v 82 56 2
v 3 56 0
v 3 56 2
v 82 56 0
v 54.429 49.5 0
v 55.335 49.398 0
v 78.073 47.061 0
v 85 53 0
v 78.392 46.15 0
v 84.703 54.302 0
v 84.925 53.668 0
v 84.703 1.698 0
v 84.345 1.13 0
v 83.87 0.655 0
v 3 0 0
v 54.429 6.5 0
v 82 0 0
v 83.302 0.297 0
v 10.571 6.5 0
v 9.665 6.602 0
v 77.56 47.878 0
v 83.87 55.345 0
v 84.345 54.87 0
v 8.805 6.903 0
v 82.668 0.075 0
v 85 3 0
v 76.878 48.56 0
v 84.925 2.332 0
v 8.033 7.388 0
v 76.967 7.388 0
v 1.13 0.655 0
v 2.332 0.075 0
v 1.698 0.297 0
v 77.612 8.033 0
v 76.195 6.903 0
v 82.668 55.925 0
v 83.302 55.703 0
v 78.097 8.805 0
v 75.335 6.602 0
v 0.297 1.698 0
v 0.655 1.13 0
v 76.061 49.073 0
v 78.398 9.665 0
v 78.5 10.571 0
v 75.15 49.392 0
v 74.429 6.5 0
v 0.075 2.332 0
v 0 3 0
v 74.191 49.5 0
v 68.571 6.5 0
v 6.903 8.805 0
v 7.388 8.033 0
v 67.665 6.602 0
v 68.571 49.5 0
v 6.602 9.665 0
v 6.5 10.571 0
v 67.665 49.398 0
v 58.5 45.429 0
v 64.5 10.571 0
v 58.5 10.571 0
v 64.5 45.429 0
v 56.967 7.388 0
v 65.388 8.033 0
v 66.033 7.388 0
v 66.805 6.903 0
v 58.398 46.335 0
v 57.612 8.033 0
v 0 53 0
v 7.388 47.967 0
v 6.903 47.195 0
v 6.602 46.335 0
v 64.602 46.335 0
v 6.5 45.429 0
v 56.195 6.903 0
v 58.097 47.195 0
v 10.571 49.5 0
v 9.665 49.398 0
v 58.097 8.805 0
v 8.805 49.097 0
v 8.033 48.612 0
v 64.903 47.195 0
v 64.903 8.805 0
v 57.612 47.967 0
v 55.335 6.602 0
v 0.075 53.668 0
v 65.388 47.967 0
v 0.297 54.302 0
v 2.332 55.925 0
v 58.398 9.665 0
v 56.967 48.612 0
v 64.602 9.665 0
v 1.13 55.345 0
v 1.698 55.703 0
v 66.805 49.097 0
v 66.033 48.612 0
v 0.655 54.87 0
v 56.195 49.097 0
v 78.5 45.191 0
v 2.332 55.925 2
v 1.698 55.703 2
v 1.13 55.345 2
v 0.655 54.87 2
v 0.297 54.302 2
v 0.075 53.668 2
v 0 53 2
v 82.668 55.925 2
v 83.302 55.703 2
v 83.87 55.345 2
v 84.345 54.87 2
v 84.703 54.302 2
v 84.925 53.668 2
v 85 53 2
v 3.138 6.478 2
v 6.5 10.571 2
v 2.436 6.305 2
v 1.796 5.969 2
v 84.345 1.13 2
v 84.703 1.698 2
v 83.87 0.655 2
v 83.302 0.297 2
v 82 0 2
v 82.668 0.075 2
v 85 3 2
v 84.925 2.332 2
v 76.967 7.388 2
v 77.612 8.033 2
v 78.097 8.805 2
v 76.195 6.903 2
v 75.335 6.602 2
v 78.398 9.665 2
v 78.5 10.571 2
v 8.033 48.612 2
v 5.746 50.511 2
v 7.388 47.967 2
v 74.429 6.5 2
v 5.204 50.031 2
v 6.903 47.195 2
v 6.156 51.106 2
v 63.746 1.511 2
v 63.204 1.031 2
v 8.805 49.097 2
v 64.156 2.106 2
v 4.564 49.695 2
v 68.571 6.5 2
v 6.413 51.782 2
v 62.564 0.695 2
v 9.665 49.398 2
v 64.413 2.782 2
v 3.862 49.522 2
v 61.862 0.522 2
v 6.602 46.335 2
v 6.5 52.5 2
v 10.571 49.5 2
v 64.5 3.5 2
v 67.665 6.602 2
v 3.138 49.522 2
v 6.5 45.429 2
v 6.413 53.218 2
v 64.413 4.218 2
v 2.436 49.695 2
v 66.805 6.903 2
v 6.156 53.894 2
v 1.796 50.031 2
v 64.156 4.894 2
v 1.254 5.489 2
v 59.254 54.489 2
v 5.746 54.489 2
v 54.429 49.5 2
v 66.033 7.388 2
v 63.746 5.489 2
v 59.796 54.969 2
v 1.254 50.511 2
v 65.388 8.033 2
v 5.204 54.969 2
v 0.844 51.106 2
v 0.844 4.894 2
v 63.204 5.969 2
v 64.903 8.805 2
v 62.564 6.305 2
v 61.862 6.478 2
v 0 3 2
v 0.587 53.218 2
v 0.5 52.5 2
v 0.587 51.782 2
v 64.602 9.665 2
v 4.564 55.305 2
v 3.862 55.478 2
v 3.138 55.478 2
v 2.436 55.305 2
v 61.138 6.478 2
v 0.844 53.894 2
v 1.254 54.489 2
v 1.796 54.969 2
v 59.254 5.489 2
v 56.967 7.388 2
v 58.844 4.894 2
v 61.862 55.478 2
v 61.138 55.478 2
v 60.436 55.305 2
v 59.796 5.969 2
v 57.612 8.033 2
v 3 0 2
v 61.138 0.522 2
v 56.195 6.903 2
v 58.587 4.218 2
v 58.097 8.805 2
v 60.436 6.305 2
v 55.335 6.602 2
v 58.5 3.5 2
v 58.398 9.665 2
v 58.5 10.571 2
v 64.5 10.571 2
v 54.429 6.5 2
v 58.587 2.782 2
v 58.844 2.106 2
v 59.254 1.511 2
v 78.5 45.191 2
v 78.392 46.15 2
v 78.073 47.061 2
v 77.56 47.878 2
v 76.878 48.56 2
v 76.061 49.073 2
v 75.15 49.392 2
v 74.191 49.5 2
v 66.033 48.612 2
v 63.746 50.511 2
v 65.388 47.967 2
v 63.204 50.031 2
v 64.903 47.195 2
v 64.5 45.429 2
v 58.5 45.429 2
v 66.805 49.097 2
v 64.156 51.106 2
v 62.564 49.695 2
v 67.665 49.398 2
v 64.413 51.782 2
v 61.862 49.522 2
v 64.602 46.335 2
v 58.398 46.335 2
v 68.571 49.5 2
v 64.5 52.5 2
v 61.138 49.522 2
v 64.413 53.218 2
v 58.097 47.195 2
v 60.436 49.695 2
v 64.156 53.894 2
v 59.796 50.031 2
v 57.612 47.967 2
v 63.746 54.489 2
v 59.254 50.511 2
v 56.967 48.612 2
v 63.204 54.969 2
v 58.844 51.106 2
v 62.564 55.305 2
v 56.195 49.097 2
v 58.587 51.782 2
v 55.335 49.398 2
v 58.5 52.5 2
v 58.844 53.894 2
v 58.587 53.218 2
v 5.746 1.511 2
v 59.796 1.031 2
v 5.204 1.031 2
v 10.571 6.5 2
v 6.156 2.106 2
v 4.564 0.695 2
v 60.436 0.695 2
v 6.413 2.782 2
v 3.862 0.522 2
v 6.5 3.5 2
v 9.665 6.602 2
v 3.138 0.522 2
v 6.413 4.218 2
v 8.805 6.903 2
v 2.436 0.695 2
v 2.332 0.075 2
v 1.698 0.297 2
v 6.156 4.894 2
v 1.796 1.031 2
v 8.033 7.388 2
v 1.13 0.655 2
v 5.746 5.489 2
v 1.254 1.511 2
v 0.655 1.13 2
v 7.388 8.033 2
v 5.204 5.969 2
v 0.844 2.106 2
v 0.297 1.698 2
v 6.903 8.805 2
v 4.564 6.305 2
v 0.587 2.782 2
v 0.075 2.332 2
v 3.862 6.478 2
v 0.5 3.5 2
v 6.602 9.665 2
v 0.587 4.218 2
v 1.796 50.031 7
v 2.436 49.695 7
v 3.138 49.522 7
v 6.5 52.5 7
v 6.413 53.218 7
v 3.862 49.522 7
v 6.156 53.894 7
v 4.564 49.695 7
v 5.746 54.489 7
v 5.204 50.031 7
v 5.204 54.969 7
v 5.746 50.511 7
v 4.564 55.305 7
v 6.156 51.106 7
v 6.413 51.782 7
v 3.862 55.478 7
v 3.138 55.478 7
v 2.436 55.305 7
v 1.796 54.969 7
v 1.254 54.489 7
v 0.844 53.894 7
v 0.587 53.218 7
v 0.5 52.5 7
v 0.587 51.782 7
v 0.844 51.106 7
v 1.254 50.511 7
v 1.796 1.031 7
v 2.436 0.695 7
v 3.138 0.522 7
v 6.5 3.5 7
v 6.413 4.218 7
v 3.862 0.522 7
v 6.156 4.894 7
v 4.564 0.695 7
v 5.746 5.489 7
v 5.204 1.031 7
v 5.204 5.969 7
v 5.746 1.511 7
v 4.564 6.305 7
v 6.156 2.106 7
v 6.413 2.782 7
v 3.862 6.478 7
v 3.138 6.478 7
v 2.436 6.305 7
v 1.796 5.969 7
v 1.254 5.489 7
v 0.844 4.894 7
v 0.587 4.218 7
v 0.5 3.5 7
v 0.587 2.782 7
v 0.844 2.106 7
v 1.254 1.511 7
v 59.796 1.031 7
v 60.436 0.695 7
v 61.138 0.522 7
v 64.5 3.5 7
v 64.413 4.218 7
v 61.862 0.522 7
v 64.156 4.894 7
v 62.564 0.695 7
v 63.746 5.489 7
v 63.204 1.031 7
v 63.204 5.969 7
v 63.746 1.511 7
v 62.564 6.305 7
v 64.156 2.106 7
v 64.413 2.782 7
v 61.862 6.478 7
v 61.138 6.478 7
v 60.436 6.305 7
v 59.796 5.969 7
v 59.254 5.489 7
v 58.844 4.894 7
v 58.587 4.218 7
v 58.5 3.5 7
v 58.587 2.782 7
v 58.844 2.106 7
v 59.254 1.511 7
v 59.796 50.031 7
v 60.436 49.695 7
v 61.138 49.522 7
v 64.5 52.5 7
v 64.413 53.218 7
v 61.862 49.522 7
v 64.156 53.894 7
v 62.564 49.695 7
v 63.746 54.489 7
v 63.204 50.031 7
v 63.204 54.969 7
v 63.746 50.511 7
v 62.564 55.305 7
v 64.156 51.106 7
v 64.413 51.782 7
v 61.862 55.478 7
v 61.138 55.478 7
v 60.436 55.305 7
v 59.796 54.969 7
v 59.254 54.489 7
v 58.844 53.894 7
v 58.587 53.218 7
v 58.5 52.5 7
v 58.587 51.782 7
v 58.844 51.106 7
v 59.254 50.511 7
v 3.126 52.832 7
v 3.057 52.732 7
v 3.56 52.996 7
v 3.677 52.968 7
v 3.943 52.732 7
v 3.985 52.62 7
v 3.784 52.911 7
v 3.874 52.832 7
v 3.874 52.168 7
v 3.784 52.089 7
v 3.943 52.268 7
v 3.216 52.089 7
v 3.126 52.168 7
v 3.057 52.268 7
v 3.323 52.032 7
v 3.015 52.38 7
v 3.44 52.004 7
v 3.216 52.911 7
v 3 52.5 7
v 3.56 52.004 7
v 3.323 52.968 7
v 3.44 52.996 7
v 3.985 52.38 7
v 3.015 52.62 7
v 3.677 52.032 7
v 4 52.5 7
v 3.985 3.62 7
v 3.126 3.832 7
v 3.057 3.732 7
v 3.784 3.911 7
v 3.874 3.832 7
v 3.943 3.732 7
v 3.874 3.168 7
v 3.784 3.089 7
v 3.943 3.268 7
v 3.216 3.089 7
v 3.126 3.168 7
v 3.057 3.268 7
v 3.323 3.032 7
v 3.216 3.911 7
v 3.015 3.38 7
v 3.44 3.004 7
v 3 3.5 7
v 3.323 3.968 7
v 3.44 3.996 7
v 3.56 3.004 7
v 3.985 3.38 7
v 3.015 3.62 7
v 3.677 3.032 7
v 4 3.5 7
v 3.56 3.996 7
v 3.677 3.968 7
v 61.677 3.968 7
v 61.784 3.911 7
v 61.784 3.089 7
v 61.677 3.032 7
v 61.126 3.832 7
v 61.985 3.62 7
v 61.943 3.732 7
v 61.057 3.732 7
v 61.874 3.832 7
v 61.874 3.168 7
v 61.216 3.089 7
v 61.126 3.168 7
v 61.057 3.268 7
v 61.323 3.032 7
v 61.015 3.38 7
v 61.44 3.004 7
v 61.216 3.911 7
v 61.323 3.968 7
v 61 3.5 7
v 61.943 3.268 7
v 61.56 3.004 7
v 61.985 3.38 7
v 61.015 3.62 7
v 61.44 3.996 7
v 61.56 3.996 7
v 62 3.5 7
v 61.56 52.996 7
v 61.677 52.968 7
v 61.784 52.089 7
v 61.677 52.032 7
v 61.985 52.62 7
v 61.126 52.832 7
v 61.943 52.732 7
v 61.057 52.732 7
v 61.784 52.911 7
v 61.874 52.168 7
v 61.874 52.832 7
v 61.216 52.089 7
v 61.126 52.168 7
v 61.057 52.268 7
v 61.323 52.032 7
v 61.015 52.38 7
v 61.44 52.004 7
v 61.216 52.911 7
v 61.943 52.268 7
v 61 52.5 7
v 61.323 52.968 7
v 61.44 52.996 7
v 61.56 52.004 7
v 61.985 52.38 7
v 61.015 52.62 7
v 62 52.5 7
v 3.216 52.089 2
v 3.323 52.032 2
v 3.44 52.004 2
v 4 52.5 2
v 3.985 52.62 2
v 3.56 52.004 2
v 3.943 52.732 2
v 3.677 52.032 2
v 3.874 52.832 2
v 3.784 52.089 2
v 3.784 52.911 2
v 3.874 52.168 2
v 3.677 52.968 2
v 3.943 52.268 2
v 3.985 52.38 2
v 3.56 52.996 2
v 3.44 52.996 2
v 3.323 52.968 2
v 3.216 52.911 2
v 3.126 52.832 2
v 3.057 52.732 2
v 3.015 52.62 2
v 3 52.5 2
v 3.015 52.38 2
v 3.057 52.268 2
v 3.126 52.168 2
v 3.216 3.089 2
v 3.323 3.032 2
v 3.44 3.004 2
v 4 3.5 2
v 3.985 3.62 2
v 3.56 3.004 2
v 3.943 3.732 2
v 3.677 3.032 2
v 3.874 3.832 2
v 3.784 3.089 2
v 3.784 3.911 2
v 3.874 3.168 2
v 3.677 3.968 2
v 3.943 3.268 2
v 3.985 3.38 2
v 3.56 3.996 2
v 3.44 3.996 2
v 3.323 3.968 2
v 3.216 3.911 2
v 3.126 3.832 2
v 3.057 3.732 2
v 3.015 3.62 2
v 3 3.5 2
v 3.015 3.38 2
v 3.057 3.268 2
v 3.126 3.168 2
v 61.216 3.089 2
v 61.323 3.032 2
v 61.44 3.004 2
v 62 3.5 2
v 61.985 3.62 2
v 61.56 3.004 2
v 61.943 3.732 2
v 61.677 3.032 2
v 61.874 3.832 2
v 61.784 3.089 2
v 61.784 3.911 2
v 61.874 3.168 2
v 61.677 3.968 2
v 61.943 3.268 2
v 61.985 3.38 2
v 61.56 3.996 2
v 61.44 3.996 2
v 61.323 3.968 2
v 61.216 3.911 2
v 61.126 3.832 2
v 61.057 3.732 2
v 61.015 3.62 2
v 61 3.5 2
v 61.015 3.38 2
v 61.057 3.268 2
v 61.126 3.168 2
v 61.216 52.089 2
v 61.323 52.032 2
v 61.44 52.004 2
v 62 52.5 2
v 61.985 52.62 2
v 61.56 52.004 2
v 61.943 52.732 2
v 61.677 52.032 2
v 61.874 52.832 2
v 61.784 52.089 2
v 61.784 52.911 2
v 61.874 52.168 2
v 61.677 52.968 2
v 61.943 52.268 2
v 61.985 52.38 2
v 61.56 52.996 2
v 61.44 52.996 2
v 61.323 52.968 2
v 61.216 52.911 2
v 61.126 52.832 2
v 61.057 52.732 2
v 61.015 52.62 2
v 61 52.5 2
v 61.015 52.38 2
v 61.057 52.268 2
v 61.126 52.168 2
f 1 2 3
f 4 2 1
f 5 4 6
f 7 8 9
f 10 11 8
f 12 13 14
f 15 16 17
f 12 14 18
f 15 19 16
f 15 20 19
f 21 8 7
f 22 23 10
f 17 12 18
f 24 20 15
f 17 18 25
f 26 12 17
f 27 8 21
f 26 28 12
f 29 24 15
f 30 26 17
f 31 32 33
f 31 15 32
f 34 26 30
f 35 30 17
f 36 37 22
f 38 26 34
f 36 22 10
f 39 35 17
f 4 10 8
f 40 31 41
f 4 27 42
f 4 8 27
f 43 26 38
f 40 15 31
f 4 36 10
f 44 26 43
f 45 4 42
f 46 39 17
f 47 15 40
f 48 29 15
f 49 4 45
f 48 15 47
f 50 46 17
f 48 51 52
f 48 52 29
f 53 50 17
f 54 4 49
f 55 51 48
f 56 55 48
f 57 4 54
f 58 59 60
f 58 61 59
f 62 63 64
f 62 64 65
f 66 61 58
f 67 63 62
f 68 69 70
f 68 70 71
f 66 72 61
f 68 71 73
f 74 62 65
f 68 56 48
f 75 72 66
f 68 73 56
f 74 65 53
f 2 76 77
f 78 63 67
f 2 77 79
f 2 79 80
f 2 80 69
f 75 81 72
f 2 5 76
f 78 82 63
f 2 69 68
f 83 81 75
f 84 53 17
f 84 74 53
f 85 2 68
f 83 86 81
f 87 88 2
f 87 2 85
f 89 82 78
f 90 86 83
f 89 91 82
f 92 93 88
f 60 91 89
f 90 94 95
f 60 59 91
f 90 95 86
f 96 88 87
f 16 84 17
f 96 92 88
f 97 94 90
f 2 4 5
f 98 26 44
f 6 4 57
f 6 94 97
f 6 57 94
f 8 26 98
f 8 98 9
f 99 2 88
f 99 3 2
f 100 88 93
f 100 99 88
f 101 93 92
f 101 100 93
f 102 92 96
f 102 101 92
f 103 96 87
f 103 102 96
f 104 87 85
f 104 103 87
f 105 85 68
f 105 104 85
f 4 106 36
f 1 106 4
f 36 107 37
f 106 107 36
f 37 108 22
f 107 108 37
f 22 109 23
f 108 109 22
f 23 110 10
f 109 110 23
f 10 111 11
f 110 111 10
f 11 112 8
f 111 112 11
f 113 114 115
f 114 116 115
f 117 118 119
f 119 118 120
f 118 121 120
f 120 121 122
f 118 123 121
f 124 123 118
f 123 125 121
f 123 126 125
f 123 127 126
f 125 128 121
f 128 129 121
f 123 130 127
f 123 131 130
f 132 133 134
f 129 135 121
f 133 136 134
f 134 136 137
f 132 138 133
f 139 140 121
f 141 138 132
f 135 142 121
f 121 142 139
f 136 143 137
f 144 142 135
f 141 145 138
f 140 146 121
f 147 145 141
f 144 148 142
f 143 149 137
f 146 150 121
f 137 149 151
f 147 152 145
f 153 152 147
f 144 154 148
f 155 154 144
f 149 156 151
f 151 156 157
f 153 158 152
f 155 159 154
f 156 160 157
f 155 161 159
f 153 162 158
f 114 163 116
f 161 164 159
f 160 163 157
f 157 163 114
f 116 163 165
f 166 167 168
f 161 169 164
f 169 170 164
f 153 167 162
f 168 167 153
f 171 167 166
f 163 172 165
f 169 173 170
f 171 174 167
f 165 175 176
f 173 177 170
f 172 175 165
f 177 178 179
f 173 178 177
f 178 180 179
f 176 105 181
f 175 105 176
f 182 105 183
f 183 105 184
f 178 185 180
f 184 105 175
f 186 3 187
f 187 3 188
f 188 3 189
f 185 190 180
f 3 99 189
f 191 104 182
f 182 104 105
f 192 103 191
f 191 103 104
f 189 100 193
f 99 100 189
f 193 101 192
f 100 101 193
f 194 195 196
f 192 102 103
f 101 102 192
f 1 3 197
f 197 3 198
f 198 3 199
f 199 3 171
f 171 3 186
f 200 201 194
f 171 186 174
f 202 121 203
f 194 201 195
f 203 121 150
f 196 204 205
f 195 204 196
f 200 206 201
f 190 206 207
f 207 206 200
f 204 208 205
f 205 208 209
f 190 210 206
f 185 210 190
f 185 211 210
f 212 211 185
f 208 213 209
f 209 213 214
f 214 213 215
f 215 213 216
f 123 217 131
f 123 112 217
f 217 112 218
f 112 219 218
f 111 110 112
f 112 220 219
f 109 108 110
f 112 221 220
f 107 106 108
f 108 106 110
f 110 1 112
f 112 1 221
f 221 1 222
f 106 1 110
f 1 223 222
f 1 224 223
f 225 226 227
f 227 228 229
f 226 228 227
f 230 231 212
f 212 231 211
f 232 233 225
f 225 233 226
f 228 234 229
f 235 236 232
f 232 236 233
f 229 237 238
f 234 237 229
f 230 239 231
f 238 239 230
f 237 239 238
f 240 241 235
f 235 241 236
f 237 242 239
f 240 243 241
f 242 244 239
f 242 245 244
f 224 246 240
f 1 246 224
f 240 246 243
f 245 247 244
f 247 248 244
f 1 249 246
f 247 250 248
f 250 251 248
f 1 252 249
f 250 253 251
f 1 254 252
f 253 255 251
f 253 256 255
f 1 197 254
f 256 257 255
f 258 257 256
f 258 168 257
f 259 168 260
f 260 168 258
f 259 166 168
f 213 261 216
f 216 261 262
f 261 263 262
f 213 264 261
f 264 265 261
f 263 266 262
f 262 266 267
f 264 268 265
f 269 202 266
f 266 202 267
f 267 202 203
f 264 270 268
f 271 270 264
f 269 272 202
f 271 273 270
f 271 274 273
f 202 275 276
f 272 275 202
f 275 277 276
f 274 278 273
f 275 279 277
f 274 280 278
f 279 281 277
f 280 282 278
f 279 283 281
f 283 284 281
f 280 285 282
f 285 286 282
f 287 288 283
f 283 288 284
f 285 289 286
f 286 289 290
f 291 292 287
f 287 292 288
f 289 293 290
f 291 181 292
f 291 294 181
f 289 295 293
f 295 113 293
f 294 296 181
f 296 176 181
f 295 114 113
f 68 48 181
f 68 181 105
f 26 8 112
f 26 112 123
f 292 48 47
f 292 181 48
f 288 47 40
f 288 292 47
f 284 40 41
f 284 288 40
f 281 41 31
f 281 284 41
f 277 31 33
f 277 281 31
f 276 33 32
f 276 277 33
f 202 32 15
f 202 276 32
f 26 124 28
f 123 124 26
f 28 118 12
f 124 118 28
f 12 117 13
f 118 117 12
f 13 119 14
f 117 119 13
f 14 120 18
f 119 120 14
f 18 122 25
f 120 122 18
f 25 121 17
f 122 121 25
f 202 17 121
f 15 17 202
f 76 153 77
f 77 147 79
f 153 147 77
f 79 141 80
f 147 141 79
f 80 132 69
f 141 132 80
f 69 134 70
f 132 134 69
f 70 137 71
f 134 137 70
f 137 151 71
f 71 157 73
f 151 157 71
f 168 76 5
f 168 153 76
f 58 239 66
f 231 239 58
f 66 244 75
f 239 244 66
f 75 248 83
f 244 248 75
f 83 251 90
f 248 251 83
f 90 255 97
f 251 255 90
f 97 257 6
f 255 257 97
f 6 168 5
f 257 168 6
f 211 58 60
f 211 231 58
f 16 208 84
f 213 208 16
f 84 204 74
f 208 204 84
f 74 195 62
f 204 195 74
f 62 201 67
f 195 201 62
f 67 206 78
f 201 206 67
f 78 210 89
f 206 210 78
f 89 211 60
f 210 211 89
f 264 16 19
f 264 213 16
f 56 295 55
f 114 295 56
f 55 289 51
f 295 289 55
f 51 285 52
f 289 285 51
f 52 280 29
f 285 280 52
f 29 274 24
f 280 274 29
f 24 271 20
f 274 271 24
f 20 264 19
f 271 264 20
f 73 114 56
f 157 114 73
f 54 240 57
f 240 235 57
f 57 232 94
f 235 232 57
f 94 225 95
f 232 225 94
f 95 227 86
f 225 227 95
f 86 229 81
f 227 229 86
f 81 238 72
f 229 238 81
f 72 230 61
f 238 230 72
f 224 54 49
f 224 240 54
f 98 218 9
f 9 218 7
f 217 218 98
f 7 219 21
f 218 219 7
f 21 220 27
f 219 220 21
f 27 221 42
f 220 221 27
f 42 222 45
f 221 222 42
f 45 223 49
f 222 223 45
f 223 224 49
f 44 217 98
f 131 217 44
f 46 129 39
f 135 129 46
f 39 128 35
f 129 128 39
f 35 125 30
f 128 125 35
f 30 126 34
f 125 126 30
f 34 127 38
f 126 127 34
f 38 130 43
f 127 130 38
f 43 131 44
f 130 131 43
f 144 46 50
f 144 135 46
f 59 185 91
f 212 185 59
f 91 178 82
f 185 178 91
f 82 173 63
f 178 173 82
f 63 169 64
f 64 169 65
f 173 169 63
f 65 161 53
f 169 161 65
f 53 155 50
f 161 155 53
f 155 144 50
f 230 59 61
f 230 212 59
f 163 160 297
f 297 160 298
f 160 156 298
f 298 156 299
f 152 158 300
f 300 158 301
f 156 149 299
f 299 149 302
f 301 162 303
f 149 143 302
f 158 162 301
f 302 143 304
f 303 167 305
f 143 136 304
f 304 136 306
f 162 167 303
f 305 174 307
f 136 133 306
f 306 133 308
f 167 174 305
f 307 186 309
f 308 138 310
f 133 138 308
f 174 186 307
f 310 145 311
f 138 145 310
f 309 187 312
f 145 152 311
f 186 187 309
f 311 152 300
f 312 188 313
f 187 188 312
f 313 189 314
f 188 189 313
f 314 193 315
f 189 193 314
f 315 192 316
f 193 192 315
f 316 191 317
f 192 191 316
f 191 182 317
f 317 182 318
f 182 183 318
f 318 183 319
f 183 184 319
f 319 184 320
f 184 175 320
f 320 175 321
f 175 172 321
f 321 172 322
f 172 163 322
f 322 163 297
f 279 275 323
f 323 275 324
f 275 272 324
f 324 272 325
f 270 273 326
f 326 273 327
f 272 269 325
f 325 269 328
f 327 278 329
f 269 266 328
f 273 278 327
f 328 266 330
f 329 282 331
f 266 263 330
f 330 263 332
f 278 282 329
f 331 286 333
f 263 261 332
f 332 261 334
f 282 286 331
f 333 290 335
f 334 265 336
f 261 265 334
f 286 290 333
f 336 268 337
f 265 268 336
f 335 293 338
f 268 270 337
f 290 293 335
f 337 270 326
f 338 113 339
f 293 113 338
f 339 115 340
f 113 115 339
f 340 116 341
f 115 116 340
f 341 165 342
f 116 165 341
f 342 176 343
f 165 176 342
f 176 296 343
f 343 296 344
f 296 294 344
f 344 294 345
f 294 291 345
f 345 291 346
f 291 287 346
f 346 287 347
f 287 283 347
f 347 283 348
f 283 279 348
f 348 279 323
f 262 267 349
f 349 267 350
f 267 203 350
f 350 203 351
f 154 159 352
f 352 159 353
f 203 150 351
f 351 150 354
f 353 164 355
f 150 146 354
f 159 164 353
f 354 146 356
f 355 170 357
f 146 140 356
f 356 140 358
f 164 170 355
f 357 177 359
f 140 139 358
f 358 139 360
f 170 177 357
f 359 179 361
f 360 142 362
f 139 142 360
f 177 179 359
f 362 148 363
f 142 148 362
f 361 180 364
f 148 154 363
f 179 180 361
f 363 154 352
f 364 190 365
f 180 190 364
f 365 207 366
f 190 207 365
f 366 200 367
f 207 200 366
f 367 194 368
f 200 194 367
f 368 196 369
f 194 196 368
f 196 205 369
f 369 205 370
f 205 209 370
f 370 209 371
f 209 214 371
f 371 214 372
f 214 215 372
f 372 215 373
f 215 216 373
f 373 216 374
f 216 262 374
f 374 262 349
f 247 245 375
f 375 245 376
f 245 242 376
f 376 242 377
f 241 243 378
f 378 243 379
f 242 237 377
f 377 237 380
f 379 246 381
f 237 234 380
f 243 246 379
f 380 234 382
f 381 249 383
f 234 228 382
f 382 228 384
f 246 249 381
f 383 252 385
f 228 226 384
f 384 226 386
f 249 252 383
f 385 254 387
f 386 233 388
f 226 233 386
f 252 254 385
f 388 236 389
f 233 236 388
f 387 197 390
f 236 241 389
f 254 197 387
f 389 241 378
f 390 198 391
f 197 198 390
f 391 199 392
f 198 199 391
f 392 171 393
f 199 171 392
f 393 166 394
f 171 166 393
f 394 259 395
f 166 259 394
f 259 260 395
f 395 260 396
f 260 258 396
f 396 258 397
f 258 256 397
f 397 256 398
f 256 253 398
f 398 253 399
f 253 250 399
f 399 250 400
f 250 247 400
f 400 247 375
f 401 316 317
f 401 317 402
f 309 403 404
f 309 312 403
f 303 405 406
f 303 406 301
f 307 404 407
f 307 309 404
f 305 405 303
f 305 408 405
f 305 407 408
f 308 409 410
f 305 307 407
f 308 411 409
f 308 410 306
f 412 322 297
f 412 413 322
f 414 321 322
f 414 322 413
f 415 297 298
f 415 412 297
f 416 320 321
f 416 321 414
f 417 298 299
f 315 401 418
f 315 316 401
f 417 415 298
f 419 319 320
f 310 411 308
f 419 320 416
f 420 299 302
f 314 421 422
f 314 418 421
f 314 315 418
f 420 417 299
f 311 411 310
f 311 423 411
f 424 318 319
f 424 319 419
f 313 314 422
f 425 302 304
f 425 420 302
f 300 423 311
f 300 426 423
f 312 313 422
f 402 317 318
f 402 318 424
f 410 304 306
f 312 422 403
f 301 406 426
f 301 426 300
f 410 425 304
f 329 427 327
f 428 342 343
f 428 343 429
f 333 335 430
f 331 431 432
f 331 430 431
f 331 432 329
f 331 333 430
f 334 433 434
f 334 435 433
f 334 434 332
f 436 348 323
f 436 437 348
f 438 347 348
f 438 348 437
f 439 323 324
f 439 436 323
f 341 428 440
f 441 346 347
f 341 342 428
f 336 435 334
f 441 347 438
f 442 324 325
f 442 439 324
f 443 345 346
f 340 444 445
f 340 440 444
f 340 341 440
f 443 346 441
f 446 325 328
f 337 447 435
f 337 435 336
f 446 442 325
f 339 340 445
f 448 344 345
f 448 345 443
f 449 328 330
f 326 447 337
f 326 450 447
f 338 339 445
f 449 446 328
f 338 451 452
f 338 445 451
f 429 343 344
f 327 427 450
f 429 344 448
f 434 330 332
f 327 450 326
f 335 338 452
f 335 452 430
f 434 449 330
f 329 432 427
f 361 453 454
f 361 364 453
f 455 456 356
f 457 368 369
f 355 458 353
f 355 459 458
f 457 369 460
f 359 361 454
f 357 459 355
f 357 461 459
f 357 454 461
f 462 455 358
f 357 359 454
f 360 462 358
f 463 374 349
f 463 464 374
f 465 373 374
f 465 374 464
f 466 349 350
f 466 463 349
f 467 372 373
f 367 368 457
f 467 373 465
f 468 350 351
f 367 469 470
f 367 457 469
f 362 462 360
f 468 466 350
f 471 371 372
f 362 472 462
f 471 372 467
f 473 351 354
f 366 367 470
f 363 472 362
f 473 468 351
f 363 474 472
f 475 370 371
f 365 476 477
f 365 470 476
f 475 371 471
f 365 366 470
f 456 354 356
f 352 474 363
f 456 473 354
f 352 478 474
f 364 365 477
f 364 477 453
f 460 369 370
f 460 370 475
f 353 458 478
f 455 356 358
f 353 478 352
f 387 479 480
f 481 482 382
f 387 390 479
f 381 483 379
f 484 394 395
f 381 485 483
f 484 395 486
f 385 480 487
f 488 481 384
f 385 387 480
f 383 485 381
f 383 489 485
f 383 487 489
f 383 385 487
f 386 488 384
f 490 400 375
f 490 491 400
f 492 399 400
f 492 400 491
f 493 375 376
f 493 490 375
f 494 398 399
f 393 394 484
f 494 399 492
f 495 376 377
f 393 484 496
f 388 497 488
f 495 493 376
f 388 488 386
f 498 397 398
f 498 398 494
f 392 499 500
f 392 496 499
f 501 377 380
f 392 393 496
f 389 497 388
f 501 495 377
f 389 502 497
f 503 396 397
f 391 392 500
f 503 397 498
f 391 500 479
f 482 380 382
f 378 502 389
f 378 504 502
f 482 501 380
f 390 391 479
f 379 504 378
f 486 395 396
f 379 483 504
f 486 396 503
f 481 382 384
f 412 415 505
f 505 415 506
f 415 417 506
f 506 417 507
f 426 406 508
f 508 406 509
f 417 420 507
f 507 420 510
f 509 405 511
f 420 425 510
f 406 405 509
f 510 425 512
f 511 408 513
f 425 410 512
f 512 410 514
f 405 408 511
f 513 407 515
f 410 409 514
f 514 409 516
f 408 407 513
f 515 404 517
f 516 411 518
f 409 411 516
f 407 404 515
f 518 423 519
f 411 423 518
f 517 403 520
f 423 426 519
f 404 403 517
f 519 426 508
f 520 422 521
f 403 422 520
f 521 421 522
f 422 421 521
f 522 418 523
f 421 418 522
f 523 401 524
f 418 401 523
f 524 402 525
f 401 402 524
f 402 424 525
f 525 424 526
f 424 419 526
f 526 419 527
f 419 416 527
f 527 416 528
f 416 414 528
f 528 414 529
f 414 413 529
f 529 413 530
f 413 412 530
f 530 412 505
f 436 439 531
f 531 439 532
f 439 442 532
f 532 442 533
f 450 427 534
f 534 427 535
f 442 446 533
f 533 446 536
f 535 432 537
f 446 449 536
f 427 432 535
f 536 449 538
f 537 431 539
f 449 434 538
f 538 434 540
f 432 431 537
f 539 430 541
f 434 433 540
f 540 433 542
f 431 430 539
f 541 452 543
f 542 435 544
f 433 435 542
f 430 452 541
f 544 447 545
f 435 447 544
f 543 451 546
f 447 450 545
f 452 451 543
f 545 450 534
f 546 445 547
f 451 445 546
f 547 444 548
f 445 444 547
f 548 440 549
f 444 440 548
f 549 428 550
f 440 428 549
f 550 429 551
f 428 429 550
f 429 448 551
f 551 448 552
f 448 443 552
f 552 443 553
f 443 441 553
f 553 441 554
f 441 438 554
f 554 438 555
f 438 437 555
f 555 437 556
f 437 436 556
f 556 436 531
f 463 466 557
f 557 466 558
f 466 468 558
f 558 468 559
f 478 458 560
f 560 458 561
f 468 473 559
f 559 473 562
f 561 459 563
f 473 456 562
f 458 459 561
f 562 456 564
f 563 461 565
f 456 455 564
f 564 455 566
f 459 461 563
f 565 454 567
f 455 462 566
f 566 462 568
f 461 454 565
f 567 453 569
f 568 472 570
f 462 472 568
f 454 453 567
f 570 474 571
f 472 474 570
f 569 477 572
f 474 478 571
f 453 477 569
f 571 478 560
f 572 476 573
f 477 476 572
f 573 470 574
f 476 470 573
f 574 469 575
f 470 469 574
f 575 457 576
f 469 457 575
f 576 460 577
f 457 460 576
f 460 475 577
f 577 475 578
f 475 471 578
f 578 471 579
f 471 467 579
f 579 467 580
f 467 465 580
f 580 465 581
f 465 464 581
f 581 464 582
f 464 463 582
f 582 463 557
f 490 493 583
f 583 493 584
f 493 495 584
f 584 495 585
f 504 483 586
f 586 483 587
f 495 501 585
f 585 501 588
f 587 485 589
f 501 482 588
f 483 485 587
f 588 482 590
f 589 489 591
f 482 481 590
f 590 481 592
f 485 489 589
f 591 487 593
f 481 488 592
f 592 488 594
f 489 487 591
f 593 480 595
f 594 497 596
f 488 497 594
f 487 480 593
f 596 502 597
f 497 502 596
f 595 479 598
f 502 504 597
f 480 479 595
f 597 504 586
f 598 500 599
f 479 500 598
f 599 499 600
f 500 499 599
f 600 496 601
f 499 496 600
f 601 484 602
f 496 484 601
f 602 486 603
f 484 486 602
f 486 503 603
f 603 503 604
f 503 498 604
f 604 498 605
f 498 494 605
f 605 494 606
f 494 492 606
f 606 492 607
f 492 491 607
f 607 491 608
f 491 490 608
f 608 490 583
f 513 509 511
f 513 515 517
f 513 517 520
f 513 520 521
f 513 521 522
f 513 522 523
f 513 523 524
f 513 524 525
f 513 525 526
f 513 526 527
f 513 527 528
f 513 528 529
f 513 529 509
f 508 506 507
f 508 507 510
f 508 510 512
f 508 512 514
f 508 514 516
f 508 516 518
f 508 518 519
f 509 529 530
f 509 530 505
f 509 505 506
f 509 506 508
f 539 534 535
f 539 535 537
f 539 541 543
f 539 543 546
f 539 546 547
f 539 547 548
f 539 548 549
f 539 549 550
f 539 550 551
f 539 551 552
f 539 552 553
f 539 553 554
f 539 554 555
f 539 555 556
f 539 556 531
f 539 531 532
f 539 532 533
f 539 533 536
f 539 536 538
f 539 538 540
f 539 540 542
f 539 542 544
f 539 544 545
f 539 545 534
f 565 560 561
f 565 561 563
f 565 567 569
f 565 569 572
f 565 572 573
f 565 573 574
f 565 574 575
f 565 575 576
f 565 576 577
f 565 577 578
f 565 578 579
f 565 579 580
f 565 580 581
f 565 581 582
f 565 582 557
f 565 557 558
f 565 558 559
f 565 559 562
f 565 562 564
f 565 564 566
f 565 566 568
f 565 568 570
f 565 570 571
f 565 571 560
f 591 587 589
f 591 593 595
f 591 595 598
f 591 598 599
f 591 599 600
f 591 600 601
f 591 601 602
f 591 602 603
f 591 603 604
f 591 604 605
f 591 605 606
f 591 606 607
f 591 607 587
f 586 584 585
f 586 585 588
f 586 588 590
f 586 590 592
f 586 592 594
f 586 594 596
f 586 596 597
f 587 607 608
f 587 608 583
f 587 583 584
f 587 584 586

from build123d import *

# Parameters (mm, degrees)
SKETCH_W        = 85
SKETCH_H        = 56
PAD_DEPTH       = 2
SKETCH001_R     = 3
PAD001_DEPTH    = 5
FILLET_R        = 3
SKETCH002_R     = 0.5
POCKET_DEPTH    = 5
SKETCH003_R     = 0.5
POCKET001_DEPTH = 5
SKETCH004_R     = 0.5
POCKET002_DEPTH = 5
SKETCH005_R     = 0.5
POCKET003_DEPTH = 5
POCKET004_DEPTH = 2.001


with BuildPart() as part:
    # Sketch → Pad (new body)
    with BuildSketch(Plane.XY):
        with Locations((42.5, 28)):
            Rectangle(SKETCH_W, SKETCH_H)
    extrude(amount=PAD_DEPTH)

    # Sketch001 (on Face6 of Pad) → Pad001 (join)
    with BuildSketch(Plane.XY.offset(2)):
        with Locations((3.5, 3.5)):
            Circle(SKETCH001_R)
        with Locations((3.5, 52.5)):
            Circle(SKETCH001_R)
        with Locations((61.5, 52.5)):
            Circle(SKETCH001_R)
        with Locations((61.5, 3.5)):
            Circle(SKETCH001_R)
    extrude(amount=PAD001_DEPTH)

    # Fillet
    fillet_edges = [part.edges().sort_by_distance(p)[0] for p in [
        (85, 0, 1),
        (85, 56, 1),
        (0, 56, 1),
        (0, 0, 1),
    ]]
    fillet(fillet_edges, radius=FILLET_R)

    # Sketch002 (on Face16 of Fillet) → Pocket (cut)
    with BuildSketch(Plane.XY.offset(7)):
        with Locations((3.5, 3.5)):
            Circle(SKETCH002_R)
    extrude(amount=-POCKET_DEPTH, mode=Mode.SUBTRACT)

    # Sketch003 (on Face17 of Pocket) → Pocket001 (cut)
    with BuildSketch(Plane.XY.offset(7)):
        with Locations((3.5, 52.5)):
            Circle(SKETCH003_R)
    extrude(amount=-POCKET001_DEPTH, mode=Mode.SUBTRACT)

    # Sketch004 (on Face15 of Pocket001) → Pocket002 (cut)
    with BuildSketch(Plane.XY.offset(7)):
        with Locations((61.5, 3.5)):
            Circle(SKETCH004_R)
    extrude(amount=-POCKET002_DEPTH, mode=Mode.SUBTRACT)

    # Sketch005 (on Face18 of Pocket002) → Pocket003 (cut)
    with BuildSketch(Plane.XY.offset(7)):
        with Locations((61.5, 52.5)):
            Circle(SKETCH005_R)
    extrude(amount=-POCKET003_DEPTH, mode=Mode.SUBTRACT)

    # Sketch006 (on Face5 of Pocket003) → Pocket004 (cut, through all)
    with BuildSketch(Plane.XY.offset(2)):
        with BuildLine():
            Line((10.571068, 49.5), (54.428932, 49.5))
            ThreePointArc((58.5, 45.428932), (57.307612, 48.307612), (54.428932, 49.5))
            Line((58.5, 45.428932), (58.5, 10.571068))
            ThreePointArc((54.428932, 6.5), (57.307612, 7.692388), (58.5, 10.571068))
            Line((54.428932, 6.5), (10.571068, 6.5))
            ThreePointArc((6.5, 10.571068), (7.692388, 7.692388), (10.571068, 6.5))
            Line((6.5, 10.571068), (6.5, 45.428932))
            ThreePointArc((10.571068, 49.5), (7.692388, 48.307612), (6.5, 45.428932))
        make_face()
        with BuildLine():
            Line((68.571068, 49.5), (74.191068, 49.5))
            ThreePointArc((78.5, 45.191068), (77.237943, 48.237943), (74.191068, 49.5))
            Line((78.5, 45.191068), (78.5, 10.571068))
            ThreePointArc((74.428932, 6.5), (77.307612, 7.692388), (78.5, 10.571068))
            Line((74.428932, 6.5), (68.571068, 6.5))
            ThreePointArc((64.5, 10.571068), (65.692388, 7.692388), (68.571068, 6.5))
            Line((64.5, 10.571068), (64.5, 45.428932))
            ThreePointArc((68.571068, 49.5), (65.692388, 48.307612), (64.5, 45.428932))
        make_face()
    extrude(amount=-POCKET004_DEPTH, mode=Mode.SUBTRACT)


solid = part.part
